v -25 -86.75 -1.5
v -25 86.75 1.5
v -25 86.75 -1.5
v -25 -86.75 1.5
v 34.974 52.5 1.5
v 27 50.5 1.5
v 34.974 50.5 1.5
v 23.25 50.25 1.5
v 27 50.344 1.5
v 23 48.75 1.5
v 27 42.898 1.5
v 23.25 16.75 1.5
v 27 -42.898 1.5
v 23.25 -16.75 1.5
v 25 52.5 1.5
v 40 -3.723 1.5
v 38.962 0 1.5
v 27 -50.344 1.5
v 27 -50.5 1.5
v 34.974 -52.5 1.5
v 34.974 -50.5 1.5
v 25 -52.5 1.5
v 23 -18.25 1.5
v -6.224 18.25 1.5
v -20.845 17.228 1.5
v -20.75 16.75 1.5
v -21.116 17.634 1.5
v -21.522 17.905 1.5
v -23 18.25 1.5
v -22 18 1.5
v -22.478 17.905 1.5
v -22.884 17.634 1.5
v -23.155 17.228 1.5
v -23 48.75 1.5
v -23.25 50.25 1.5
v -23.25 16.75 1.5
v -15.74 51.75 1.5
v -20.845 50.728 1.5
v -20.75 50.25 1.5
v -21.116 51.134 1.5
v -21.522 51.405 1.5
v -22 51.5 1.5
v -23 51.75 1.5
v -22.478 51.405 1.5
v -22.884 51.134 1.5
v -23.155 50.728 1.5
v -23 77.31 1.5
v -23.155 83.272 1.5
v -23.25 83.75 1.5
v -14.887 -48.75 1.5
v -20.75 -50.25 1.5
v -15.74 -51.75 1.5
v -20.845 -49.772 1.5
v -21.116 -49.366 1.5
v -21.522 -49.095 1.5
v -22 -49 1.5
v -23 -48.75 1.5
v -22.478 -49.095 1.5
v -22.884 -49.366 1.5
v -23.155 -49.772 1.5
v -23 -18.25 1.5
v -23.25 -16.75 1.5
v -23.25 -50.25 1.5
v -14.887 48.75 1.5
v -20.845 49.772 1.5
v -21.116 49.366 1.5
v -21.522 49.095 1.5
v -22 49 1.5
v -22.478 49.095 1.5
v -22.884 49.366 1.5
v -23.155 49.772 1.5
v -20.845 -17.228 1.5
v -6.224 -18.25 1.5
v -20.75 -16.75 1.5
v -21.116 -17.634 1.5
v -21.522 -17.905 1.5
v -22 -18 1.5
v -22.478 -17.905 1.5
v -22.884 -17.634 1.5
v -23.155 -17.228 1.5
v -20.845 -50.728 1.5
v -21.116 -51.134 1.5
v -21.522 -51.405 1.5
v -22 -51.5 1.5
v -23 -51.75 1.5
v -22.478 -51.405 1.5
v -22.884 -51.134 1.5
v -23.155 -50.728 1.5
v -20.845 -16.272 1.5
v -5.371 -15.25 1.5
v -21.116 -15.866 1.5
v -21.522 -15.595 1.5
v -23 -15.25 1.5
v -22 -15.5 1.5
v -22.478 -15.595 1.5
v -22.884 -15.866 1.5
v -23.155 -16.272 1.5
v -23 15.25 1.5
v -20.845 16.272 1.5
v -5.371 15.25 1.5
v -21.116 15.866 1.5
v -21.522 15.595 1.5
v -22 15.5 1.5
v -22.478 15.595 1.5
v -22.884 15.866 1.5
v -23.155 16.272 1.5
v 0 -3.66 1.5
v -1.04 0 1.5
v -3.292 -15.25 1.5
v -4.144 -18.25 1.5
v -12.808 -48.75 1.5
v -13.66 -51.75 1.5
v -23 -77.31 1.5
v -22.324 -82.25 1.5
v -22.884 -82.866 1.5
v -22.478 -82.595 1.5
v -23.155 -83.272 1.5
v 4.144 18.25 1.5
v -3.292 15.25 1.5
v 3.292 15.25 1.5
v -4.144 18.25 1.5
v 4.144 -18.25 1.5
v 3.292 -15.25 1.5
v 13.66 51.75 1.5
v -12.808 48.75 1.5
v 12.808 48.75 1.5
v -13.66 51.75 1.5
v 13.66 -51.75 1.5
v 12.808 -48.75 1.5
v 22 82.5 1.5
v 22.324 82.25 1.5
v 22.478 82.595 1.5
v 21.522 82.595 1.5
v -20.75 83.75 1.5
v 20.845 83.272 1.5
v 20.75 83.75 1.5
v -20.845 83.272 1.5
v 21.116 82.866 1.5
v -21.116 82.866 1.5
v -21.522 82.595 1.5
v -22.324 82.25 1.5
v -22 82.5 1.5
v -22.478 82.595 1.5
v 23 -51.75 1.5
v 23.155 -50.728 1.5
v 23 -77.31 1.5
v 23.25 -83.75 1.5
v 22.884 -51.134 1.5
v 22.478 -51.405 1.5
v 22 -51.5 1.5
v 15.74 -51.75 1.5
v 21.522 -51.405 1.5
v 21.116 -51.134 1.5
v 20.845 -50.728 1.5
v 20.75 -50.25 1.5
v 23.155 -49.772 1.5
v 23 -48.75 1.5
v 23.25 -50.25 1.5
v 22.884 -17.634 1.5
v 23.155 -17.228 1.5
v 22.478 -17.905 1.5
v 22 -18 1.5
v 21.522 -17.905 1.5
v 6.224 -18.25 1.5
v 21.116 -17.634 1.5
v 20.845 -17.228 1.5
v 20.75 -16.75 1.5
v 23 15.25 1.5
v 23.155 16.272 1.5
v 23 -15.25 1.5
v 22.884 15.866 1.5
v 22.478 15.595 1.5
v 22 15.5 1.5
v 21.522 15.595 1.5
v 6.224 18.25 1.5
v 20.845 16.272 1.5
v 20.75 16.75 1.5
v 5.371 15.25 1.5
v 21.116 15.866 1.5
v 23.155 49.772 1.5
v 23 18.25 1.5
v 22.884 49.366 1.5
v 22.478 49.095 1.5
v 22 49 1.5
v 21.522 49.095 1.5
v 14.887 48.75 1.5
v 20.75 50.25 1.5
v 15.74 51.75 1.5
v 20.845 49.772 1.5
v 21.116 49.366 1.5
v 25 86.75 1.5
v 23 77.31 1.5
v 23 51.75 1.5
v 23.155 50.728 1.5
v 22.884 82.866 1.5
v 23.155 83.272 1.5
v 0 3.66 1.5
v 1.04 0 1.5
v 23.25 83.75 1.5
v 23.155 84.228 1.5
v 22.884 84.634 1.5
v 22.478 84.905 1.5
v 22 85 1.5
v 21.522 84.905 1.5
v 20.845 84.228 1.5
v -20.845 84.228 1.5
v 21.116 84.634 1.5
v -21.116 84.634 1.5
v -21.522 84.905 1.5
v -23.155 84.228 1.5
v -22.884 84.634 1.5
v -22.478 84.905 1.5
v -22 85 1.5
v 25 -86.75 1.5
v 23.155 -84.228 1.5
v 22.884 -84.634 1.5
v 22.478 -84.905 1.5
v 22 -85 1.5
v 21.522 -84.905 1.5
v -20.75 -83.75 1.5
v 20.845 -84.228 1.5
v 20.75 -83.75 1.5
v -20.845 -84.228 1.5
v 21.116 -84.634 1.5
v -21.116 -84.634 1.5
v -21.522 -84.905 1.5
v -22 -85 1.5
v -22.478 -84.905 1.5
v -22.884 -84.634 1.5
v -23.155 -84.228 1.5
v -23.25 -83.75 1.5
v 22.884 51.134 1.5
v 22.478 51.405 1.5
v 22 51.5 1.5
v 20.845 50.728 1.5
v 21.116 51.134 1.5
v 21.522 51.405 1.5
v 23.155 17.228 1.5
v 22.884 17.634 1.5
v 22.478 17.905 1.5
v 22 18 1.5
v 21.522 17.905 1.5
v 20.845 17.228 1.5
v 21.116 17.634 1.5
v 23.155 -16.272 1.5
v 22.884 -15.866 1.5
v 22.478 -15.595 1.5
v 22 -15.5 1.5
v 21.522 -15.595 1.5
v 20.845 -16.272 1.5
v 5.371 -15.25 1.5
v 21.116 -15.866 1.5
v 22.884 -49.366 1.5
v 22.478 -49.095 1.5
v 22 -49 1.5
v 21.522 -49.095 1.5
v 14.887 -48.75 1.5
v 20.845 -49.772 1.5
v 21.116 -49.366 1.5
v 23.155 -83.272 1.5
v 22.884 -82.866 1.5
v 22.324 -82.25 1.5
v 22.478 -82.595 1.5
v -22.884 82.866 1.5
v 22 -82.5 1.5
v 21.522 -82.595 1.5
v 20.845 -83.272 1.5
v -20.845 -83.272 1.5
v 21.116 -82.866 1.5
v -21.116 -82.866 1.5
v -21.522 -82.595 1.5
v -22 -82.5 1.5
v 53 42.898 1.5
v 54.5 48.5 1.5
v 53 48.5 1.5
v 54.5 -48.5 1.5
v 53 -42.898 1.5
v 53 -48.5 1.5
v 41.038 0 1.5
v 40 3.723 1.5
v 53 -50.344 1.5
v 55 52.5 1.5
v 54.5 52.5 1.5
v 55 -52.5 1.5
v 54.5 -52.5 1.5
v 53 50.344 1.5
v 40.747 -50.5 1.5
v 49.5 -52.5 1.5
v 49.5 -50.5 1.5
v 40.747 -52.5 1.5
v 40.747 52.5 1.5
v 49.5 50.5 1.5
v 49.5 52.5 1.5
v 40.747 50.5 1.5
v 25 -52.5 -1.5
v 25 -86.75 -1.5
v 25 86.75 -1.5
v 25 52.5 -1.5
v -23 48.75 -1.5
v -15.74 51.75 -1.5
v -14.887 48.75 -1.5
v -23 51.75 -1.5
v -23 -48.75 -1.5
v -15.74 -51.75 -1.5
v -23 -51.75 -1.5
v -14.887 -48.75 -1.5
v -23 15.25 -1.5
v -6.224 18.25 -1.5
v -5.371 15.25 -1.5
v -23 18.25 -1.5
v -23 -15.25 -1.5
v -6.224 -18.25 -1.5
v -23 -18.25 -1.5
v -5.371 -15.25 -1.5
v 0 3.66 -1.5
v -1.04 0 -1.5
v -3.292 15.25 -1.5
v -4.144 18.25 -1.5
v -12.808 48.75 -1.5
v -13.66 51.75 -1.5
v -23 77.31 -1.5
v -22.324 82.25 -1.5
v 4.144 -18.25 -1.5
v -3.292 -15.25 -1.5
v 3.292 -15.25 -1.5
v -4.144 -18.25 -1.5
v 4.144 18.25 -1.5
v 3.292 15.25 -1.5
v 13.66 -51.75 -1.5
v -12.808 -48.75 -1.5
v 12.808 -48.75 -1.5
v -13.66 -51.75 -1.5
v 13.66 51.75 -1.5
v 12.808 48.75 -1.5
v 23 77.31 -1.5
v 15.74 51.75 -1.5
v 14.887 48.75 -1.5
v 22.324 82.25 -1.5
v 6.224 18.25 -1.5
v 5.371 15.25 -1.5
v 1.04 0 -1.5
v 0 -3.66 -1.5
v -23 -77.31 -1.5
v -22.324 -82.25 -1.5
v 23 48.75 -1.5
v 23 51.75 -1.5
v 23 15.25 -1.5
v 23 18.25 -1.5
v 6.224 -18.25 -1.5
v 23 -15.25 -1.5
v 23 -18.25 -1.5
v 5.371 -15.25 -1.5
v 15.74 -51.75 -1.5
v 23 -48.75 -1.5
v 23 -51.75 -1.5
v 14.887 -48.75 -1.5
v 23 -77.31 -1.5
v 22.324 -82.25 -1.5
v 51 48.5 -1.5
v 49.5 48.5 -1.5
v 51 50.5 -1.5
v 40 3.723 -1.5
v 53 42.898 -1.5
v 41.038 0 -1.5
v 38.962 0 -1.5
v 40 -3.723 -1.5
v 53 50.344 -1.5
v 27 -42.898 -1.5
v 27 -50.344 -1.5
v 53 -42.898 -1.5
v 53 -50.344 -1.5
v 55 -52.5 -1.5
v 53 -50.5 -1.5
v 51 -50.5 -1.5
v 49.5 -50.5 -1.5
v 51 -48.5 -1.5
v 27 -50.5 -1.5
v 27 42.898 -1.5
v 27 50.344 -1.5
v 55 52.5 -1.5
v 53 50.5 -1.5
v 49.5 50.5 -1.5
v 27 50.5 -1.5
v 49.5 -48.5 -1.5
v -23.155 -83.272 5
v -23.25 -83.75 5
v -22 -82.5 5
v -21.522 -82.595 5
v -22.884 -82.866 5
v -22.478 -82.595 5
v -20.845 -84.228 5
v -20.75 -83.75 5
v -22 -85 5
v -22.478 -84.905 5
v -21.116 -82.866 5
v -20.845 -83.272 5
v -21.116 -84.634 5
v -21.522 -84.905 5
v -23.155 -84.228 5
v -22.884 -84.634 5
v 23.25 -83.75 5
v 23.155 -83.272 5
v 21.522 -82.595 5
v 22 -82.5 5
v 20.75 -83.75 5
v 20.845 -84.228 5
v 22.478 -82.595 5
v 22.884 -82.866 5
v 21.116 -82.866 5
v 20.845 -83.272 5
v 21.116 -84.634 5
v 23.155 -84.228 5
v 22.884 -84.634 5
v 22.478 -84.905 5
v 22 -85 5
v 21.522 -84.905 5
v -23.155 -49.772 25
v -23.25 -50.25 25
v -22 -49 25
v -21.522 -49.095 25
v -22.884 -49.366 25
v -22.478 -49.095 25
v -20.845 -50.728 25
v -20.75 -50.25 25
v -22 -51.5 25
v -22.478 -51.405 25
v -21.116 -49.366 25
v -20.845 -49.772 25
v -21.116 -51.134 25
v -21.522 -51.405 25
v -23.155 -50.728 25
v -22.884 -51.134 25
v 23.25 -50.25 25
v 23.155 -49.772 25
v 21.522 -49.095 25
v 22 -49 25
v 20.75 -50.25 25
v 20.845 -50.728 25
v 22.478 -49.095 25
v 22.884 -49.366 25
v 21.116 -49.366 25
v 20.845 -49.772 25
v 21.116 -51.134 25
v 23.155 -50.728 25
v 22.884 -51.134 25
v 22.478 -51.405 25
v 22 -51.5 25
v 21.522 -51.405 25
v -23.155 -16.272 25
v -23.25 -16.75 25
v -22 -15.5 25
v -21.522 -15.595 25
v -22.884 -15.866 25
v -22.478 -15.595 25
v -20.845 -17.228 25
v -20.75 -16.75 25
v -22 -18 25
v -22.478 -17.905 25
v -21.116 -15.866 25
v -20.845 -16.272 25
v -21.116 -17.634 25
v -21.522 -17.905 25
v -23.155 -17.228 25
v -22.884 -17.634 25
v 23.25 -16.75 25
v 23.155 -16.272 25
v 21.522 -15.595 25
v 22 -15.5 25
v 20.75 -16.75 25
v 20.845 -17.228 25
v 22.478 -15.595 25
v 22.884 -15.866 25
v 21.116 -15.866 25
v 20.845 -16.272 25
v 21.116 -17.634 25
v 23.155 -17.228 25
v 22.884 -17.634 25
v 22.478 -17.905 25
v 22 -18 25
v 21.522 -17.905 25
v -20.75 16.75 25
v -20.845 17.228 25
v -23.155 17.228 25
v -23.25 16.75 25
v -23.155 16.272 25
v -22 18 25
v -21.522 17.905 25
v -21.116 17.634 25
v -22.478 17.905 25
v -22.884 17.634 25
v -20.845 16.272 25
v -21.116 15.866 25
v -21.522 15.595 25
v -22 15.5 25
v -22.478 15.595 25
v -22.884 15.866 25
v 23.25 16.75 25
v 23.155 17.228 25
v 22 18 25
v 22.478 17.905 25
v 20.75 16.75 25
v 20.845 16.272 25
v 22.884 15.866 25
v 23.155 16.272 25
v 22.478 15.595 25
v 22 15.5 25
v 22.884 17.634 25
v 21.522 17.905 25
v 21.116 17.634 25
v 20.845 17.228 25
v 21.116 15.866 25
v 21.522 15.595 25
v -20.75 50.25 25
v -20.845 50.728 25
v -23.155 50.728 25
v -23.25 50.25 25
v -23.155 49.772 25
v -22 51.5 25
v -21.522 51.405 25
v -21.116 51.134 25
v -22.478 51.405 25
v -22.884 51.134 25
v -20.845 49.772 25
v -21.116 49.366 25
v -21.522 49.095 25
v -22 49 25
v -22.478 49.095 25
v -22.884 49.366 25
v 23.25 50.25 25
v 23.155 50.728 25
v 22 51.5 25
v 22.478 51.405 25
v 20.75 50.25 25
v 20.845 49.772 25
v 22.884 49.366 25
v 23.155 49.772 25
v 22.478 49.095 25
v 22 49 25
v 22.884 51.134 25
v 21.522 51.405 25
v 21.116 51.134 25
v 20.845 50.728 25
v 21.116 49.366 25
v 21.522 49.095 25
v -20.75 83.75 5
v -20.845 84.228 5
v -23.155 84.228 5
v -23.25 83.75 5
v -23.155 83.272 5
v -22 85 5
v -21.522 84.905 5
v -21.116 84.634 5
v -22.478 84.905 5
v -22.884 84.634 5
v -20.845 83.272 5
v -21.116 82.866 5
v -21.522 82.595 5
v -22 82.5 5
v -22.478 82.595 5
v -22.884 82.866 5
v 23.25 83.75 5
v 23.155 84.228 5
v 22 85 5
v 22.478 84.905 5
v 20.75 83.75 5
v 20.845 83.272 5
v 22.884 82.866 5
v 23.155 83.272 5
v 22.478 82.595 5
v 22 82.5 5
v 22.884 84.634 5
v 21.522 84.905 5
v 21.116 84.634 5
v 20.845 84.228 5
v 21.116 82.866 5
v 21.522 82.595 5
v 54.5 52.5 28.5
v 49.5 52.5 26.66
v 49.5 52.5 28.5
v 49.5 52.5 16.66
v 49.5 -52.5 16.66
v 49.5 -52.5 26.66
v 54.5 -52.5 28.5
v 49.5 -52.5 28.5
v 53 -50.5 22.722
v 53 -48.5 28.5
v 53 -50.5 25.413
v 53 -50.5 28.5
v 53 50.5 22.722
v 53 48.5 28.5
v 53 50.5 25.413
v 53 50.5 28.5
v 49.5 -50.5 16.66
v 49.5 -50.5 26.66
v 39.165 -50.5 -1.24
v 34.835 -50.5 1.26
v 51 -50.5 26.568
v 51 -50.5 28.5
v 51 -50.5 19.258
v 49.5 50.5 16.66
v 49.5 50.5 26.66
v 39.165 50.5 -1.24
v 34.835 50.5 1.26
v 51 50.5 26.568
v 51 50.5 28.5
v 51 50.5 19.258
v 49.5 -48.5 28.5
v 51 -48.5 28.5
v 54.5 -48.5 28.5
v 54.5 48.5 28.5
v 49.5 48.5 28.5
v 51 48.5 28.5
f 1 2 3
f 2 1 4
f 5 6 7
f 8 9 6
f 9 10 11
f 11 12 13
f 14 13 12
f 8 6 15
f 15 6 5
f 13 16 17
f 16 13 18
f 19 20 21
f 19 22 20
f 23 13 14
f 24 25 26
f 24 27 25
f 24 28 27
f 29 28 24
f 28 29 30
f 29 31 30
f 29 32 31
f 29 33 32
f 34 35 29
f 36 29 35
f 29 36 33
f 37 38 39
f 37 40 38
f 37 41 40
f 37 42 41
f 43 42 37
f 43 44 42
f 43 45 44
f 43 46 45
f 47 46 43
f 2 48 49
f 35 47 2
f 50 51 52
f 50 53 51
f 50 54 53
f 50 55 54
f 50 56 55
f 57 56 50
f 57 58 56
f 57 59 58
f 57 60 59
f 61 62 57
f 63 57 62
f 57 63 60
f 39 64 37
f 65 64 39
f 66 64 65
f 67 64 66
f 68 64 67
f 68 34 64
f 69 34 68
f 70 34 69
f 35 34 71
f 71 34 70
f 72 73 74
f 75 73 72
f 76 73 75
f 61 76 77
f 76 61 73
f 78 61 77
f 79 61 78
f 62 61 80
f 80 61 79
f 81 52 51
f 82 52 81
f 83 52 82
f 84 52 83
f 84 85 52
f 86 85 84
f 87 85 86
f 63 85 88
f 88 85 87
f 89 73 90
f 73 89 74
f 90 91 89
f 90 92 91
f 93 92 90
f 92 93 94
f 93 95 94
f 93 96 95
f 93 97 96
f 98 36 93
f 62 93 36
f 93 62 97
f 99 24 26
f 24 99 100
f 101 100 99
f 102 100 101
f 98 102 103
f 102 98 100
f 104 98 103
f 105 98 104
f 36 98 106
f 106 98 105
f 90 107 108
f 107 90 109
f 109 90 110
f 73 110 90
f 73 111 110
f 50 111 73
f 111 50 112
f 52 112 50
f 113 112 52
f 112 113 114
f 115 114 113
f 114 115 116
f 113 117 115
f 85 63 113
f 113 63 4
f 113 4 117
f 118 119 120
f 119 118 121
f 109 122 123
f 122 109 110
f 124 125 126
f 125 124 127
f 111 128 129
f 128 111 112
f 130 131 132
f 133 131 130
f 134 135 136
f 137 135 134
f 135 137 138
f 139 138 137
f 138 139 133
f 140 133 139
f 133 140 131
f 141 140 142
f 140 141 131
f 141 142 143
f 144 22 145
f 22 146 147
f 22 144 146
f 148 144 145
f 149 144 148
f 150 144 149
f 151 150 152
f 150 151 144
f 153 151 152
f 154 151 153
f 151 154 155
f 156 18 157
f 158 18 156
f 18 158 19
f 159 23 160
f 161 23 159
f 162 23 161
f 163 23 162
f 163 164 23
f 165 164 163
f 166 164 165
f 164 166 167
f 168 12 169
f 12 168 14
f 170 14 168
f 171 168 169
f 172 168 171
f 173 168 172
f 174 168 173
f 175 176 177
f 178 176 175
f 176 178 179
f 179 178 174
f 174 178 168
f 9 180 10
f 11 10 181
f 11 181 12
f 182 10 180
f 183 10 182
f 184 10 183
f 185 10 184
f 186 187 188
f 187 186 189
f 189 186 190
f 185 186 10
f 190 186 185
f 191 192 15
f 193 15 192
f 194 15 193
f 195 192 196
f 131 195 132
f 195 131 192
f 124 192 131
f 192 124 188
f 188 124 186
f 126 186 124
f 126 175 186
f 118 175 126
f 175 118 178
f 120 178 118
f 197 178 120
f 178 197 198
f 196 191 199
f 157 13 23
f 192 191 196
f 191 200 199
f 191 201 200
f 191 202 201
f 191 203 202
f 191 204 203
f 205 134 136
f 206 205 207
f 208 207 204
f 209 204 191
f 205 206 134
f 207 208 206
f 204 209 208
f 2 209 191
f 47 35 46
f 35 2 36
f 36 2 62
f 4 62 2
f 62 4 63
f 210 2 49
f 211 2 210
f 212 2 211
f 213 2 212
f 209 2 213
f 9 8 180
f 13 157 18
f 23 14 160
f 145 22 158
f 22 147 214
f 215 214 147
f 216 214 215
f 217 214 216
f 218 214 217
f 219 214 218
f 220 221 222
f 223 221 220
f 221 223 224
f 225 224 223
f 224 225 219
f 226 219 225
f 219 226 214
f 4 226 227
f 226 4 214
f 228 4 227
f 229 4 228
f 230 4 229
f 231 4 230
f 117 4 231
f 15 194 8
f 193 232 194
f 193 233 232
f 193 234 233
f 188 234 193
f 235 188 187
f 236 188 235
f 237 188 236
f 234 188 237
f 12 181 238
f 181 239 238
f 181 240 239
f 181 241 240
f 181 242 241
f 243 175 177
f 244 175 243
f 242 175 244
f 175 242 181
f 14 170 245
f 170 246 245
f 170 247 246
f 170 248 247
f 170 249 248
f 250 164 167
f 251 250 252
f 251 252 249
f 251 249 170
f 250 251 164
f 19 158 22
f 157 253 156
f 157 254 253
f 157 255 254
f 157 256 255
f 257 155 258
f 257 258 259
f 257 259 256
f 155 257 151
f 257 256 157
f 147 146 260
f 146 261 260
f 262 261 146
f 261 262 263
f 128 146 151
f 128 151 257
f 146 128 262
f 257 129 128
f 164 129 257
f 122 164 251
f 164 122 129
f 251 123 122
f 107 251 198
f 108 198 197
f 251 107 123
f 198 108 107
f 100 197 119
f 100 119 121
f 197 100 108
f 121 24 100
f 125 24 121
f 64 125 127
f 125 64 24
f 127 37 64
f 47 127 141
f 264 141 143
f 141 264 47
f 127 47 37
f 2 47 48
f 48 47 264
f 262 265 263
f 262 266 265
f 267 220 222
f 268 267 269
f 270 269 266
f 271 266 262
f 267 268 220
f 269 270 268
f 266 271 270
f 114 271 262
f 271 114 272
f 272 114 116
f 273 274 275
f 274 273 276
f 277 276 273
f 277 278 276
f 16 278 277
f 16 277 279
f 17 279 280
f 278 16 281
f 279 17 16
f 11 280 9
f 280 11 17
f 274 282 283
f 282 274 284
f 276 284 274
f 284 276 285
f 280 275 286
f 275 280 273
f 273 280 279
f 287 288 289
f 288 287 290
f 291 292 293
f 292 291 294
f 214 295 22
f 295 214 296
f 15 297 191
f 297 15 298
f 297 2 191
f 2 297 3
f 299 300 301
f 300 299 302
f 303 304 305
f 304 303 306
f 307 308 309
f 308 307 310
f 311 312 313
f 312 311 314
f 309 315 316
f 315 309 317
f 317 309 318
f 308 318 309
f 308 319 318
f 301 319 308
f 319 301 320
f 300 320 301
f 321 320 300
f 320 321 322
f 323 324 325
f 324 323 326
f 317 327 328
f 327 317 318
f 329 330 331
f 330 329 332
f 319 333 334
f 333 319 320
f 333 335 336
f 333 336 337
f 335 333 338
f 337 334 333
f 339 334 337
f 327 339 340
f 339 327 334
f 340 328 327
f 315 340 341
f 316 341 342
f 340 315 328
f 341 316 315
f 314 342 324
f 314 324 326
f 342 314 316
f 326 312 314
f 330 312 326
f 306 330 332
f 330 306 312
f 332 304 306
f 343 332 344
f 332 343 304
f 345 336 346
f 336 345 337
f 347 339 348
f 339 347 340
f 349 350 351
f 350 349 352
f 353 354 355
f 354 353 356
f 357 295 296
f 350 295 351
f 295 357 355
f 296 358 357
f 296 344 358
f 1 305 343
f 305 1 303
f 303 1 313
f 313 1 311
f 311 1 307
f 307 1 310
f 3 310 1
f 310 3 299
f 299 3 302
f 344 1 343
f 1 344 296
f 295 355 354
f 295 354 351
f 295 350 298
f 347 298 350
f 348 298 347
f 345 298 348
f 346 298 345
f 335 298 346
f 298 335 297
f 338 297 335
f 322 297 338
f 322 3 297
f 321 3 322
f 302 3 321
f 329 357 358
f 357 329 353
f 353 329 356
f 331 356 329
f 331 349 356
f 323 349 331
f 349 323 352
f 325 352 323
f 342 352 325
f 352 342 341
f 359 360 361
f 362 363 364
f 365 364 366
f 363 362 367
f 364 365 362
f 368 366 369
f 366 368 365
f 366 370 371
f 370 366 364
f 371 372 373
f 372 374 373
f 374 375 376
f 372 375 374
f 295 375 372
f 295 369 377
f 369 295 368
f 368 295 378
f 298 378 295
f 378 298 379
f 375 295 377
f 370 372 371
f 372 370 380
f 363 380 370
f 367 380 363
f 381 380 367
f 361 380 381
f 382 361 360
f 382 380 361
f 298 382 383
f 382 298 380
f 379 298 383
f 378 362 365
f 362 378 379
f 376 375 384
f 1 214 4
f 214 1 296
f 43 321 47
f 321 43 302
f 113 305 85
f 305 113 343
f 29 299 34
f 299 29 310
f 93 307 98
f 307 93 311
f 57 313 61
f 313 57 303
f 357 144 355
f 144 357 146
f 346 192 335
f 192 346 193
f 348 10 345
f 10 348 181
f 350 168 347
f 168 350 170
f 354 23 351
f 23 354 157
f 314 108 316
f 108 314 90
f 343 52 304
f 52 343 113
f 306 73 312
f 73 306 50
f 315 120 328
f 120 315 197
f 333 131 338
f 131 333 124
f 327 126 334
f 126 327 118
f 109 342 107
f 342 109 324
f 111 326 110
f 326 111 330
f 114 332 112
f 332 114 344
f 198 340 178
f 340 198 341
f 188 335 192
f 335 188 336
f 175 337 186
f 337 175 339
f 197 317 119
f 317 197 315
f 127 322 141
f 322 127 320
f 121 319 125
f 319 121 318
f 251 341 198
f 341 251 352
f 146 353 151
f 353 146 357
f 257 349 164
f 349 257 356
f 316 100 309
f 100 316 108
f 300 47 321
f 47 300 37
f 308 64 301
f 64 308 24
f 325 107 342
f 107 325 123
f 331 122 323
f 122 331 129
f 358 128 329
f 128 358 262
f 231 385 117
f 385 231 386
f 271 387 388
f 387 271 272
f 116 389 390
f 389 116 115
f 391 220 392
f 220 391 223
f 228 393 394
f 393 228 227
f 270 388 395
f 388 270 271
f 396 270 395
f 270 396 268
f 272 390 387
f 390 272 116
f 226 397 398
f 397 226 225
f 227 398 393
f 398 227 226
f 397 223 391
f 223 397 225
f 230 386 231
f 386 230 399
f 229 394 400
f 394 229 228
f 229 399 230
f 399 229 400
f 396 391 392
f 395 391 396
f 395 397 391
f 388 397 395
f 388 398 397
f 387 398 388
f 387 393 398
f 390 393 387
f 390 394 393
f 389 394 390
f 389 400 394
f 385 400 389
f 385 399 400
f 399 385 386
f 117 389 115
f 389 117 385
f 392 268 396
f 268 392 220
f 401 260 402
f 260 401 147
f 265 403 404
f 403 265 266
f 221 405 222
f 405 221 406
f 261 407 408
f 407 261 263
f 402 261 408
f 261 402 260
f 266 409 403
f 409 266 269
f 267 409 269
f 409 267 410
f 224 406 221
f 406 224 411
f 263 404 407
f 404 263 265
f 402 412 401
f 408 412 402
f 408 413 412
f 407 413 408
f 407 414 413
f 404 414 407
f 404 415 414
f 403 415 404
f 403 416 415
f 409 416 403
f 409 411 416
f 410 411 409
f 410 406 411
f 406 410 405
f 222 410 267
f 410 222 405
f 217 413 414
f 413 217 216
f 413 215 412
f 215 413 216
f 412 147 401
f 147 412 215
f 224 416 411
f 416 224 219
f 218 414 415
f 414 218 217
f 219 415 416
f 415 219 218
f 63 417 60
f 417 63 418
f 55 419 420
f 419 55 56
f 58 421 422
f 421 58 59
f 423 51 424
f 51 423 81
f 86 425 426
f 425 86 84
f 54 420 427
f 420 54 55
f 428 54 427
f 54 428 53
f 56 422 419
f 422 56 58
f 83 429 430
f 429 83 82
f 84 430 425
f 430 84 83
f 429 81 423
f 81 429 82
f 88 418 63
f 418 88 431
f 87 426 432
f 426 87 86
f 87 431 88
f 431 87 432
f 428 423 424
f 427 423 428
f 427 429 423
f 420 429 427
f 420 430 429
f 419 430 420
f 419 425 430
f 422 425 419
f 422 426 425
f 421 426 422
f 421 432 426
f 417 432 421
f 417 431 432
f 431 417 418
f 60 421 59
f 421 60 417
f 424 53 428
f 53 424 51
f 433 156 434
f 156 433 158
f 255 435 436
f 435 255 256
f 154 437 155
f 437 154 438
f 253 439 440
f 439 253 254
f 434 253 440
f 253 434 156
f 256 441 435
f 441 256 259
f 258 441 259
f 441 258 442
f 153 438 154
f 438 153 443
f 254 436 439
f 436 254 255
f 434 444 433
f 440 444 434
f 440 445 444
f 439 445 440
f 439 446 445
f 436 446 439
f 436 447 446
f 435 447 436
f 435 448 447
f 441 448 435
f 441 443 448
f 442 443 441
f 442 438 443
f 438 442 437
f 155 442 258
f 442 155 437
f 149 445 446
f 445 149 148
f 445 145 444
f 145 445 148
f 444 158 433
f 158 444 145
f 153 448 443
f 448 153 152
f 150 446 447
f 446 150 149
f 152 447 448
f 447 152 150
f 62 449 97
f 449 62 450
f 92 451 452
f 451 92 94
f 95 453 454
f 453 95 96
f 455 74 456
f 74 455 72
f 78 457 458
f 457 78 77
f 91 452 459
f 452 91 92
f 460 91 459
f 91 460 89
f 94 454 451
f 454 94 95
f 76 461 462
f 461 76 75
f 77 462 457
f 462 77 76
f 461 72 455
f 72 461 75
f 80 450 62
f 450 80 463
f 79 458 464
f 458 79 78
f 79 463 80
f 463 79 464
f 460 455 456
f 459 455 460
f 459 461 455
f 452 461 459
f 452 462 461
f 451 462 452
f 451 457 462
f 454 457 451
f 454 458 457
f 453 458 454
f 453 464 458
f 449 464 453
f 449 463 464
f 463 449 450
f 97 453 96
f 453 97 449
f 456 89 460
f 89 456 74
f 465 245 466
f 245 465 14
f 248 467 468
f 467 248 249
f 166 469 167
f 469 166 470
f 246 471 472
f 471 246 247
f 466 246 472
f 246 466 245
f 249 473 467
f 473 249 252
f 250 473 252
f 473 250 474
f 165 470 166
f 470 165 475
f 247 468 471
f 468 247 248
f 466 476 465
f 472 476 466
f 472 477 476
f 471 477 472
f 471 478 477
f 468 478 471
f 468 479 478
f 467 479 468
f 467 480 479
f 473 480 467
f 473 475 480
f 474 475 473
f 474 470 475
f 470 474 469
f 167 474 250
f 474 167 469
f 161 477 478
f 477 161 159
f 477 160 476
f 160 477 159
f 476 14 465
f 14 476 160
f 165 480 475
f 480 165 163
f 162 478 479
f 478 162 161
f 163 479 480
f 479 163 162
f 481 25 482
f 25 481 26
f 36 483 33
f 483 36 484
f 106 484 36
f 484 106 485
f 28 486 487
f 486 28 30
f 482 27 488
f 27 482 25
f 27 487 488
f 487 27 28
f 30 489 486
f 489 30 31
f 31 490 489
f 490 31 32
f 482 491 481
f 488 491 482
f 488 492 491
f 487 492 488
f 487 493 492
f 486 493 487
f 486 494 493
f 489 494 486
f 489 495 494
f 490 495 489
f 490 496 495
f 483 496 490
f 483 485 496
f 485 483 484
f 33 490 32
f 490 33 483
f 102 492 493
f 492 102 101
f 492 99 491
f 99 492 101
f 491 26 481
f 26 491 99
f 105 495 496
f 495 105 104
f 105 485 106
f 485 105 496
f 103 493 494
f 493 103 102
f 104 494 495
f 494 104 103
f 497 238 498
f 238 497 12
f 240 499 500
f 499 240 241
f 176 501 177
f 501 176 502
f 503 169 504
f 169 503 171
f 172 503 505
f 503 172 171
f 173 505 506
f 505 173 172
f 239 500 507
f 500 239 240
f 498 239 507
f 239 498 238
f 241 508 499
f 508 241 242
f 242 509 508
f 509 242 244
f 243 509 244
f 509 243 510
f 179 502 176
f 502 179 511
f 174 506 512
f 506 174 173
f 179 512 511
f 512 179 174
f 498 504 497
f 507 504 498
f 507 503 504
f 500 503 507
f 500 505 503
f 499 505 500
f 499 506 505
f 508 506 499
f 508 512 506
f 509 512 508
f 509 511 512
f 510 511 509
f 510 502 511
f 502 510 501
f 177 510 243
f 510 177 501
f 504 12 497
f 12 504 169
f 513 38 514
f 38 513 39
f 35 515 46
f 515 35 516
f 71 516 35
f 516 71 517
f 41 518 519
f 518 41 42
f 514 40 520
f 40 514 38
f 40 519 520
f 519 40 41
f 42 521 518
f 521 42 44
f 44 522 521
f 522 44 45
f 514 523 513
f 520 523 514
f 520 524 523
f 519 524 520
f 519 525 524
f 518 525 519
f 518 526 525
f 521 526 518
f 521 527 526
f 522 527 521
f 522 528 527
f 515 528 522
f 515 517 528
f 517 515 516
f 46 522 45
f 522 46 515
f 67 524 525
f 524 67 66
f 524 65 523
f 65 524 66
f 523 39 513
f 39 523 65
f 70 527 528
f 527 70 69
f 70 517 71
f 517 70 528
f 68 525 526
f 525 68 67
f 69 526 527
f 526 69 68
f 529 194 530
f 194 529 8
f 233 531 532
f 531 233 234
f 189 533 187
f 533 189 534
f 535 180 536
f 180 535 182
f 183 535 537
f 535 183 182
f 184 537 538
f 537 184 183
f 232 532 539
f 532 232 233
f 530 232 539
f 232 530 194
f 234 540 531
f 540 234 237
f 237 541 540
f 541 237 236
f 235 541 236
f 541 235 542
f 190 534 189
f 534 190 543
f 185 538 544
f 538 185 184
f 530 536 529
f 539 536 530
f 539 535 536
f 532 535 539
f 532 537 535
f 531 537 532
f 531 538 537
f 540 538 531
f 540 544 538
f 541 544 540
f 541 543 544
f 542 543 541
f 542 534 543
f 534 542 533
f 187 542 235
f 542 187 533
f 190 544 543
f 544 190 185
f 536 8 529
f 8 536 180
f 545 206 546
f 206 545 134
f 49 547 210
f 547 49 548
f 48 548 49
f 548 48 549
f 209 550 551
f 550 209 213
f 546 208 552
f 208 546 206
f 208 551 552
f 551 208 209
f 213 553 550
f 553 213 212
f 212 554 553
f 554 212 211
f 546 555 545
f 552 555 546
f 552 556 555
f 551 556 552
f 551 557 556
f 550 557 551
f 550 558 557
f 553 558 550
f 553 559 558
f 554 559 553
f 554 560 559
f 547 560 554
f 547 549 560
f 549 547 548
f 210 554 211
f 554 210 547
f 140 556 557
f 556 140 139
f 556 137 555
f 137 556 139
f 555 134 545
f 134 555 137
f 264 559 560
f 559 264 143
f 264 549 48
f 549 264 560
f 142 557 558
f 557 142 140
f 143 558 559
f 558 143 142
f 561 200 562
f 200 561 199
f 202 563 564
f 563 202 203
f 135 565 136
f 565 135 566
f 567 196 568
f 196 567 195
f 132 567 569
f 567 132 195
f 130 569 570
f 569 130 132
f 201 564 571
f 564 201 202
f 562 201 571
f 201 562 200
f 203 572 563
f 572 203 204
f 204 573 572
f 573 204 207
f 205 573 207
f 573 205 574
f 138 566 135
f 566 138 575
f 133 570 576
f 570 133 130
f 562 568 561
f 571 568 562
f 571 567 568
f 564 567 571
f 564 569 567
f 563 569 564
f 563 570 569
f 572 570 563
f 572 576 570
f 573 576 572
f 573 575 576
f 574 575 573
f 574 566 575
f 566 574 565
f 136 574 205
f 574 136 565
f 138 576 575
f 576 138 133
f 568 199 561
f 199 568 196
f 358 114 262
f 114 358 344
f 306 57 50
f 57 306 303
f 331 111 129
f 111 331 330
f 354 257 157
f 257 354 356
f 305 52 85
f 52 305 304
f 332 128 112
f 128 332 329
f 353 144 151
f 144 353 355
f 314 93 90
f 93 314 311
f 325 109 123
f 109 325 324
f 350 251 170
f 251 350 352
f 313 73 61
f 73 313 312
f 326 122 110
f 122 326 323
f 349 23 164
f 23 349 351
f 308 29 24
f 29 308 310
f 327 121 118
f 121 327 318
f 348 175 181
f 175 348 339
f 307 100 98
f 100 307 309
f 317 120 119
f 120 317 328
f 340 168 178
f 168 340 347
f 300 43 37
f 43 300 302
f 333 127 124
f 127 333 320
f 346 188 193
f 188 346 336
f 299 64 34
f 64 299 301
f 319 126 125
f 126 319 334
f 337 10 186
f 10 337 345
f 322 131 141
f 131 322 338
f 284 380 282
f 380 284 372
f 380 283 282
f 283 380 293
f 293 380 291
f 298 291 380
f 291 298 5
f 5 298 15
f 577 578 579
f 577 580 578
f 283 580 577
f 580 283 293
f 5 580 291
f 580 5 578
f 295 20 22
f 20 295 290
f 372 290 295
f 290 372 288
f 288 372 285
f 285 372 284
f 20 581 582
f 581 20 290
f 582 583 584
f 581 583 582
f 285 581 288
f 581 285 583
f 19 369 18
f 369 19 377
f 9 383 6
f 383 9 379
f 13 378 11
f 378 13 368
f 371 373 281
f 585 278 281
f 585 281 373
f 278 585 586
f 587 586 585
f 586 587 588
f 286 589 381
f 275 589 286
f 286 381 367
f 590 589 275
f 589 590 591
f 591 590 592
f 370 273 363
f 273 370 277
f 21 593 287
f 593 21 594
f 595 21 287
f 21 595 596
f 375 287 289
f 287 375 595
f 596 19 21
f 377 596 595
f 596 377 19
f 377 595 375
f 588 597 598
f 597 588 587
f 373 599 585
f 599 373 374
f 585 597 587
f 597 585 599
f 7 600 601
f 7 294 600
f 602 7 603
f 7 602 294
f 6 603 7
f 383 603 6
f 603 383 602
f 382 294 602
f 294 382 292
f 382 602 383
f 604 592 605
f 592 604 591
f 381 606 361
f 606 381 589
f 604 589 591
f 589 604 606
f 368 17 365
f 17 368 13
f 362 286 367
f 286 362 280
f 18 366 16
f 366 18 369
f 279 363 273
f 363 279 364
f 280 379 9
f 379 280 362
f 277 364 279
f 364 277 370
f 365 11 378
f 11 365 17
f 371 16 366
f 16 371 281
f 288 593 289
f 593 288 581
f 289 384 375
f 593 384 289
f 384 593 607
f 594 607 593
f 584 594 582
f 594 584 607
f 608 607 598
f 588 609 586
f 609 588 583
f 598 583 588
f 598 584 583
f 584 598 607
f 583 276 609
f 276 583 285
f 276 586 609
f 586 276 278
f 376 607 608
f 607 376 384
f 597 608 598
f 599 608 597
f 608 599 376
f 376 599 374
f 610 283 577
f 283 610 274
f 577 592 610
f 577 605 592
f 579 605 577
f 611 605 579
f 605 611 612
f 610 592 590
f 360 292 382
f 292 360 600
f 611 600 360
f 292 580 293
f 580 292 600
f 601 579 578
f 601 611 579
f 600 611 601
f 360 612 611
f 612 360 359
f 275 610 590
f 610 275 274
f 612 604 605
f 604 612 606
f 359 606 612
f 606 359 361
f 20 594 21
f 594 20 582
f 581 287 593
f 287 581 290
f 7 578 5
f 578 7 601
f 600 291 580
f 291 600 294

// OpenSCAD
// file: ../EfficientCube/EfficientCube.scad
$fs = 0.5;
$fa = 1;

/*
This allows easy replacement
of a solid cube with one that has lots of area cut away
yet it maintains a great deal of shear and tensile strength.

This is a drop-in replacement for cube();
*/
module efficient_cube(dims, center=false, thickness=2) {
    
    translation_vector = center ? [0, 0, 0] : dims / 2;
    
    translate(translation_vector)
    union() {
        
        // Border
        difference() {
            cube(dims, center=true);
            cube(dims - [thickness * 2, thickness * 2, -thickness], center=true);
        }
        
        // Slats
        difference() {
            
            slat_length = sqrt(pow(dims[0] - thickness / 2, 2) + pow(dims[1] - thickness / 2, 2));
            slat_angle = atan((dims[0] - thickness / 2)/(dims[1] - thickness / 2));
            
            // Untrimmed slats
            union() {
                for (i=[-1:2:1]) {
                    rotate([0, 0, i * slat_angle])
                    cube([thickness, slat_length, dims[2]], center=true);
                }
            }
            
            // Boundary cuts
            union() {
                for (i=[-1:2:1]) {
                    translate([(dims[0] - 0.1) * i, 0, 0])
                    scale([1, 1, 1.2])
                    cube(dims, center=true);
                }
                for (i=[-1:2:1]) {
                    translate([0, (dims[1] - 0.1) * i, 0])
                    scale([1, 1, 1.2])
                    cube(dims, center=true);
                }
            }
        }
    }
}
// main file
include <../EfficientCube/EfficientCube.scad>

$fa = 1;
$fs = 0.5;

ground_thickness = 3;
wiring_gap = 30;

// relay rack base
efficient_cube([50, 33.5 * 5 + 6, ground_thickness], center=true);

// posts for relays
for (i=[-5:2:5]) {
    translate(i * [0, 33.5/2, 0])
    cube([50, 3, ground_thickness], center=true);
    for (j=[-1:2:1]) {
        translate([j * 22, i * 33.5/2, 0])
        cylinder(r=2.5/2, h=5 + (abs(i) < 4 ? 20 : 0));
    }
}

// joiner for interface board braces
translate([wiring_gap / 2 + 50 / 2, 0, 0])
efficient_cube([wiring_gap, 105, 3], center=true);

// braces
translate([wiring_gap + 50 / 2 - 3, 0, -ground_thickness/2])
for (i=[0:1]) {
    rotate([0, 0, 180 * i])
    translate([0, -101/2, 0])
    difference() {
        translate([-2.5, -2, 0])
        cube([5, 4, 30]);
        translate([-1, 0, -0.5])
        cube([2, 3, 32]);
    }
}

// slanted supports
translate([wiring_gap / 2 + 50 / 2 + 4.5, 0, 13])
for (i=[0:1]) {
    rotate([0, 30, 0])
    rotate([0, 0, 180 * i])
    translate([0, -103/2, 0])
    cube([5, 2, 30], center=true);
}
